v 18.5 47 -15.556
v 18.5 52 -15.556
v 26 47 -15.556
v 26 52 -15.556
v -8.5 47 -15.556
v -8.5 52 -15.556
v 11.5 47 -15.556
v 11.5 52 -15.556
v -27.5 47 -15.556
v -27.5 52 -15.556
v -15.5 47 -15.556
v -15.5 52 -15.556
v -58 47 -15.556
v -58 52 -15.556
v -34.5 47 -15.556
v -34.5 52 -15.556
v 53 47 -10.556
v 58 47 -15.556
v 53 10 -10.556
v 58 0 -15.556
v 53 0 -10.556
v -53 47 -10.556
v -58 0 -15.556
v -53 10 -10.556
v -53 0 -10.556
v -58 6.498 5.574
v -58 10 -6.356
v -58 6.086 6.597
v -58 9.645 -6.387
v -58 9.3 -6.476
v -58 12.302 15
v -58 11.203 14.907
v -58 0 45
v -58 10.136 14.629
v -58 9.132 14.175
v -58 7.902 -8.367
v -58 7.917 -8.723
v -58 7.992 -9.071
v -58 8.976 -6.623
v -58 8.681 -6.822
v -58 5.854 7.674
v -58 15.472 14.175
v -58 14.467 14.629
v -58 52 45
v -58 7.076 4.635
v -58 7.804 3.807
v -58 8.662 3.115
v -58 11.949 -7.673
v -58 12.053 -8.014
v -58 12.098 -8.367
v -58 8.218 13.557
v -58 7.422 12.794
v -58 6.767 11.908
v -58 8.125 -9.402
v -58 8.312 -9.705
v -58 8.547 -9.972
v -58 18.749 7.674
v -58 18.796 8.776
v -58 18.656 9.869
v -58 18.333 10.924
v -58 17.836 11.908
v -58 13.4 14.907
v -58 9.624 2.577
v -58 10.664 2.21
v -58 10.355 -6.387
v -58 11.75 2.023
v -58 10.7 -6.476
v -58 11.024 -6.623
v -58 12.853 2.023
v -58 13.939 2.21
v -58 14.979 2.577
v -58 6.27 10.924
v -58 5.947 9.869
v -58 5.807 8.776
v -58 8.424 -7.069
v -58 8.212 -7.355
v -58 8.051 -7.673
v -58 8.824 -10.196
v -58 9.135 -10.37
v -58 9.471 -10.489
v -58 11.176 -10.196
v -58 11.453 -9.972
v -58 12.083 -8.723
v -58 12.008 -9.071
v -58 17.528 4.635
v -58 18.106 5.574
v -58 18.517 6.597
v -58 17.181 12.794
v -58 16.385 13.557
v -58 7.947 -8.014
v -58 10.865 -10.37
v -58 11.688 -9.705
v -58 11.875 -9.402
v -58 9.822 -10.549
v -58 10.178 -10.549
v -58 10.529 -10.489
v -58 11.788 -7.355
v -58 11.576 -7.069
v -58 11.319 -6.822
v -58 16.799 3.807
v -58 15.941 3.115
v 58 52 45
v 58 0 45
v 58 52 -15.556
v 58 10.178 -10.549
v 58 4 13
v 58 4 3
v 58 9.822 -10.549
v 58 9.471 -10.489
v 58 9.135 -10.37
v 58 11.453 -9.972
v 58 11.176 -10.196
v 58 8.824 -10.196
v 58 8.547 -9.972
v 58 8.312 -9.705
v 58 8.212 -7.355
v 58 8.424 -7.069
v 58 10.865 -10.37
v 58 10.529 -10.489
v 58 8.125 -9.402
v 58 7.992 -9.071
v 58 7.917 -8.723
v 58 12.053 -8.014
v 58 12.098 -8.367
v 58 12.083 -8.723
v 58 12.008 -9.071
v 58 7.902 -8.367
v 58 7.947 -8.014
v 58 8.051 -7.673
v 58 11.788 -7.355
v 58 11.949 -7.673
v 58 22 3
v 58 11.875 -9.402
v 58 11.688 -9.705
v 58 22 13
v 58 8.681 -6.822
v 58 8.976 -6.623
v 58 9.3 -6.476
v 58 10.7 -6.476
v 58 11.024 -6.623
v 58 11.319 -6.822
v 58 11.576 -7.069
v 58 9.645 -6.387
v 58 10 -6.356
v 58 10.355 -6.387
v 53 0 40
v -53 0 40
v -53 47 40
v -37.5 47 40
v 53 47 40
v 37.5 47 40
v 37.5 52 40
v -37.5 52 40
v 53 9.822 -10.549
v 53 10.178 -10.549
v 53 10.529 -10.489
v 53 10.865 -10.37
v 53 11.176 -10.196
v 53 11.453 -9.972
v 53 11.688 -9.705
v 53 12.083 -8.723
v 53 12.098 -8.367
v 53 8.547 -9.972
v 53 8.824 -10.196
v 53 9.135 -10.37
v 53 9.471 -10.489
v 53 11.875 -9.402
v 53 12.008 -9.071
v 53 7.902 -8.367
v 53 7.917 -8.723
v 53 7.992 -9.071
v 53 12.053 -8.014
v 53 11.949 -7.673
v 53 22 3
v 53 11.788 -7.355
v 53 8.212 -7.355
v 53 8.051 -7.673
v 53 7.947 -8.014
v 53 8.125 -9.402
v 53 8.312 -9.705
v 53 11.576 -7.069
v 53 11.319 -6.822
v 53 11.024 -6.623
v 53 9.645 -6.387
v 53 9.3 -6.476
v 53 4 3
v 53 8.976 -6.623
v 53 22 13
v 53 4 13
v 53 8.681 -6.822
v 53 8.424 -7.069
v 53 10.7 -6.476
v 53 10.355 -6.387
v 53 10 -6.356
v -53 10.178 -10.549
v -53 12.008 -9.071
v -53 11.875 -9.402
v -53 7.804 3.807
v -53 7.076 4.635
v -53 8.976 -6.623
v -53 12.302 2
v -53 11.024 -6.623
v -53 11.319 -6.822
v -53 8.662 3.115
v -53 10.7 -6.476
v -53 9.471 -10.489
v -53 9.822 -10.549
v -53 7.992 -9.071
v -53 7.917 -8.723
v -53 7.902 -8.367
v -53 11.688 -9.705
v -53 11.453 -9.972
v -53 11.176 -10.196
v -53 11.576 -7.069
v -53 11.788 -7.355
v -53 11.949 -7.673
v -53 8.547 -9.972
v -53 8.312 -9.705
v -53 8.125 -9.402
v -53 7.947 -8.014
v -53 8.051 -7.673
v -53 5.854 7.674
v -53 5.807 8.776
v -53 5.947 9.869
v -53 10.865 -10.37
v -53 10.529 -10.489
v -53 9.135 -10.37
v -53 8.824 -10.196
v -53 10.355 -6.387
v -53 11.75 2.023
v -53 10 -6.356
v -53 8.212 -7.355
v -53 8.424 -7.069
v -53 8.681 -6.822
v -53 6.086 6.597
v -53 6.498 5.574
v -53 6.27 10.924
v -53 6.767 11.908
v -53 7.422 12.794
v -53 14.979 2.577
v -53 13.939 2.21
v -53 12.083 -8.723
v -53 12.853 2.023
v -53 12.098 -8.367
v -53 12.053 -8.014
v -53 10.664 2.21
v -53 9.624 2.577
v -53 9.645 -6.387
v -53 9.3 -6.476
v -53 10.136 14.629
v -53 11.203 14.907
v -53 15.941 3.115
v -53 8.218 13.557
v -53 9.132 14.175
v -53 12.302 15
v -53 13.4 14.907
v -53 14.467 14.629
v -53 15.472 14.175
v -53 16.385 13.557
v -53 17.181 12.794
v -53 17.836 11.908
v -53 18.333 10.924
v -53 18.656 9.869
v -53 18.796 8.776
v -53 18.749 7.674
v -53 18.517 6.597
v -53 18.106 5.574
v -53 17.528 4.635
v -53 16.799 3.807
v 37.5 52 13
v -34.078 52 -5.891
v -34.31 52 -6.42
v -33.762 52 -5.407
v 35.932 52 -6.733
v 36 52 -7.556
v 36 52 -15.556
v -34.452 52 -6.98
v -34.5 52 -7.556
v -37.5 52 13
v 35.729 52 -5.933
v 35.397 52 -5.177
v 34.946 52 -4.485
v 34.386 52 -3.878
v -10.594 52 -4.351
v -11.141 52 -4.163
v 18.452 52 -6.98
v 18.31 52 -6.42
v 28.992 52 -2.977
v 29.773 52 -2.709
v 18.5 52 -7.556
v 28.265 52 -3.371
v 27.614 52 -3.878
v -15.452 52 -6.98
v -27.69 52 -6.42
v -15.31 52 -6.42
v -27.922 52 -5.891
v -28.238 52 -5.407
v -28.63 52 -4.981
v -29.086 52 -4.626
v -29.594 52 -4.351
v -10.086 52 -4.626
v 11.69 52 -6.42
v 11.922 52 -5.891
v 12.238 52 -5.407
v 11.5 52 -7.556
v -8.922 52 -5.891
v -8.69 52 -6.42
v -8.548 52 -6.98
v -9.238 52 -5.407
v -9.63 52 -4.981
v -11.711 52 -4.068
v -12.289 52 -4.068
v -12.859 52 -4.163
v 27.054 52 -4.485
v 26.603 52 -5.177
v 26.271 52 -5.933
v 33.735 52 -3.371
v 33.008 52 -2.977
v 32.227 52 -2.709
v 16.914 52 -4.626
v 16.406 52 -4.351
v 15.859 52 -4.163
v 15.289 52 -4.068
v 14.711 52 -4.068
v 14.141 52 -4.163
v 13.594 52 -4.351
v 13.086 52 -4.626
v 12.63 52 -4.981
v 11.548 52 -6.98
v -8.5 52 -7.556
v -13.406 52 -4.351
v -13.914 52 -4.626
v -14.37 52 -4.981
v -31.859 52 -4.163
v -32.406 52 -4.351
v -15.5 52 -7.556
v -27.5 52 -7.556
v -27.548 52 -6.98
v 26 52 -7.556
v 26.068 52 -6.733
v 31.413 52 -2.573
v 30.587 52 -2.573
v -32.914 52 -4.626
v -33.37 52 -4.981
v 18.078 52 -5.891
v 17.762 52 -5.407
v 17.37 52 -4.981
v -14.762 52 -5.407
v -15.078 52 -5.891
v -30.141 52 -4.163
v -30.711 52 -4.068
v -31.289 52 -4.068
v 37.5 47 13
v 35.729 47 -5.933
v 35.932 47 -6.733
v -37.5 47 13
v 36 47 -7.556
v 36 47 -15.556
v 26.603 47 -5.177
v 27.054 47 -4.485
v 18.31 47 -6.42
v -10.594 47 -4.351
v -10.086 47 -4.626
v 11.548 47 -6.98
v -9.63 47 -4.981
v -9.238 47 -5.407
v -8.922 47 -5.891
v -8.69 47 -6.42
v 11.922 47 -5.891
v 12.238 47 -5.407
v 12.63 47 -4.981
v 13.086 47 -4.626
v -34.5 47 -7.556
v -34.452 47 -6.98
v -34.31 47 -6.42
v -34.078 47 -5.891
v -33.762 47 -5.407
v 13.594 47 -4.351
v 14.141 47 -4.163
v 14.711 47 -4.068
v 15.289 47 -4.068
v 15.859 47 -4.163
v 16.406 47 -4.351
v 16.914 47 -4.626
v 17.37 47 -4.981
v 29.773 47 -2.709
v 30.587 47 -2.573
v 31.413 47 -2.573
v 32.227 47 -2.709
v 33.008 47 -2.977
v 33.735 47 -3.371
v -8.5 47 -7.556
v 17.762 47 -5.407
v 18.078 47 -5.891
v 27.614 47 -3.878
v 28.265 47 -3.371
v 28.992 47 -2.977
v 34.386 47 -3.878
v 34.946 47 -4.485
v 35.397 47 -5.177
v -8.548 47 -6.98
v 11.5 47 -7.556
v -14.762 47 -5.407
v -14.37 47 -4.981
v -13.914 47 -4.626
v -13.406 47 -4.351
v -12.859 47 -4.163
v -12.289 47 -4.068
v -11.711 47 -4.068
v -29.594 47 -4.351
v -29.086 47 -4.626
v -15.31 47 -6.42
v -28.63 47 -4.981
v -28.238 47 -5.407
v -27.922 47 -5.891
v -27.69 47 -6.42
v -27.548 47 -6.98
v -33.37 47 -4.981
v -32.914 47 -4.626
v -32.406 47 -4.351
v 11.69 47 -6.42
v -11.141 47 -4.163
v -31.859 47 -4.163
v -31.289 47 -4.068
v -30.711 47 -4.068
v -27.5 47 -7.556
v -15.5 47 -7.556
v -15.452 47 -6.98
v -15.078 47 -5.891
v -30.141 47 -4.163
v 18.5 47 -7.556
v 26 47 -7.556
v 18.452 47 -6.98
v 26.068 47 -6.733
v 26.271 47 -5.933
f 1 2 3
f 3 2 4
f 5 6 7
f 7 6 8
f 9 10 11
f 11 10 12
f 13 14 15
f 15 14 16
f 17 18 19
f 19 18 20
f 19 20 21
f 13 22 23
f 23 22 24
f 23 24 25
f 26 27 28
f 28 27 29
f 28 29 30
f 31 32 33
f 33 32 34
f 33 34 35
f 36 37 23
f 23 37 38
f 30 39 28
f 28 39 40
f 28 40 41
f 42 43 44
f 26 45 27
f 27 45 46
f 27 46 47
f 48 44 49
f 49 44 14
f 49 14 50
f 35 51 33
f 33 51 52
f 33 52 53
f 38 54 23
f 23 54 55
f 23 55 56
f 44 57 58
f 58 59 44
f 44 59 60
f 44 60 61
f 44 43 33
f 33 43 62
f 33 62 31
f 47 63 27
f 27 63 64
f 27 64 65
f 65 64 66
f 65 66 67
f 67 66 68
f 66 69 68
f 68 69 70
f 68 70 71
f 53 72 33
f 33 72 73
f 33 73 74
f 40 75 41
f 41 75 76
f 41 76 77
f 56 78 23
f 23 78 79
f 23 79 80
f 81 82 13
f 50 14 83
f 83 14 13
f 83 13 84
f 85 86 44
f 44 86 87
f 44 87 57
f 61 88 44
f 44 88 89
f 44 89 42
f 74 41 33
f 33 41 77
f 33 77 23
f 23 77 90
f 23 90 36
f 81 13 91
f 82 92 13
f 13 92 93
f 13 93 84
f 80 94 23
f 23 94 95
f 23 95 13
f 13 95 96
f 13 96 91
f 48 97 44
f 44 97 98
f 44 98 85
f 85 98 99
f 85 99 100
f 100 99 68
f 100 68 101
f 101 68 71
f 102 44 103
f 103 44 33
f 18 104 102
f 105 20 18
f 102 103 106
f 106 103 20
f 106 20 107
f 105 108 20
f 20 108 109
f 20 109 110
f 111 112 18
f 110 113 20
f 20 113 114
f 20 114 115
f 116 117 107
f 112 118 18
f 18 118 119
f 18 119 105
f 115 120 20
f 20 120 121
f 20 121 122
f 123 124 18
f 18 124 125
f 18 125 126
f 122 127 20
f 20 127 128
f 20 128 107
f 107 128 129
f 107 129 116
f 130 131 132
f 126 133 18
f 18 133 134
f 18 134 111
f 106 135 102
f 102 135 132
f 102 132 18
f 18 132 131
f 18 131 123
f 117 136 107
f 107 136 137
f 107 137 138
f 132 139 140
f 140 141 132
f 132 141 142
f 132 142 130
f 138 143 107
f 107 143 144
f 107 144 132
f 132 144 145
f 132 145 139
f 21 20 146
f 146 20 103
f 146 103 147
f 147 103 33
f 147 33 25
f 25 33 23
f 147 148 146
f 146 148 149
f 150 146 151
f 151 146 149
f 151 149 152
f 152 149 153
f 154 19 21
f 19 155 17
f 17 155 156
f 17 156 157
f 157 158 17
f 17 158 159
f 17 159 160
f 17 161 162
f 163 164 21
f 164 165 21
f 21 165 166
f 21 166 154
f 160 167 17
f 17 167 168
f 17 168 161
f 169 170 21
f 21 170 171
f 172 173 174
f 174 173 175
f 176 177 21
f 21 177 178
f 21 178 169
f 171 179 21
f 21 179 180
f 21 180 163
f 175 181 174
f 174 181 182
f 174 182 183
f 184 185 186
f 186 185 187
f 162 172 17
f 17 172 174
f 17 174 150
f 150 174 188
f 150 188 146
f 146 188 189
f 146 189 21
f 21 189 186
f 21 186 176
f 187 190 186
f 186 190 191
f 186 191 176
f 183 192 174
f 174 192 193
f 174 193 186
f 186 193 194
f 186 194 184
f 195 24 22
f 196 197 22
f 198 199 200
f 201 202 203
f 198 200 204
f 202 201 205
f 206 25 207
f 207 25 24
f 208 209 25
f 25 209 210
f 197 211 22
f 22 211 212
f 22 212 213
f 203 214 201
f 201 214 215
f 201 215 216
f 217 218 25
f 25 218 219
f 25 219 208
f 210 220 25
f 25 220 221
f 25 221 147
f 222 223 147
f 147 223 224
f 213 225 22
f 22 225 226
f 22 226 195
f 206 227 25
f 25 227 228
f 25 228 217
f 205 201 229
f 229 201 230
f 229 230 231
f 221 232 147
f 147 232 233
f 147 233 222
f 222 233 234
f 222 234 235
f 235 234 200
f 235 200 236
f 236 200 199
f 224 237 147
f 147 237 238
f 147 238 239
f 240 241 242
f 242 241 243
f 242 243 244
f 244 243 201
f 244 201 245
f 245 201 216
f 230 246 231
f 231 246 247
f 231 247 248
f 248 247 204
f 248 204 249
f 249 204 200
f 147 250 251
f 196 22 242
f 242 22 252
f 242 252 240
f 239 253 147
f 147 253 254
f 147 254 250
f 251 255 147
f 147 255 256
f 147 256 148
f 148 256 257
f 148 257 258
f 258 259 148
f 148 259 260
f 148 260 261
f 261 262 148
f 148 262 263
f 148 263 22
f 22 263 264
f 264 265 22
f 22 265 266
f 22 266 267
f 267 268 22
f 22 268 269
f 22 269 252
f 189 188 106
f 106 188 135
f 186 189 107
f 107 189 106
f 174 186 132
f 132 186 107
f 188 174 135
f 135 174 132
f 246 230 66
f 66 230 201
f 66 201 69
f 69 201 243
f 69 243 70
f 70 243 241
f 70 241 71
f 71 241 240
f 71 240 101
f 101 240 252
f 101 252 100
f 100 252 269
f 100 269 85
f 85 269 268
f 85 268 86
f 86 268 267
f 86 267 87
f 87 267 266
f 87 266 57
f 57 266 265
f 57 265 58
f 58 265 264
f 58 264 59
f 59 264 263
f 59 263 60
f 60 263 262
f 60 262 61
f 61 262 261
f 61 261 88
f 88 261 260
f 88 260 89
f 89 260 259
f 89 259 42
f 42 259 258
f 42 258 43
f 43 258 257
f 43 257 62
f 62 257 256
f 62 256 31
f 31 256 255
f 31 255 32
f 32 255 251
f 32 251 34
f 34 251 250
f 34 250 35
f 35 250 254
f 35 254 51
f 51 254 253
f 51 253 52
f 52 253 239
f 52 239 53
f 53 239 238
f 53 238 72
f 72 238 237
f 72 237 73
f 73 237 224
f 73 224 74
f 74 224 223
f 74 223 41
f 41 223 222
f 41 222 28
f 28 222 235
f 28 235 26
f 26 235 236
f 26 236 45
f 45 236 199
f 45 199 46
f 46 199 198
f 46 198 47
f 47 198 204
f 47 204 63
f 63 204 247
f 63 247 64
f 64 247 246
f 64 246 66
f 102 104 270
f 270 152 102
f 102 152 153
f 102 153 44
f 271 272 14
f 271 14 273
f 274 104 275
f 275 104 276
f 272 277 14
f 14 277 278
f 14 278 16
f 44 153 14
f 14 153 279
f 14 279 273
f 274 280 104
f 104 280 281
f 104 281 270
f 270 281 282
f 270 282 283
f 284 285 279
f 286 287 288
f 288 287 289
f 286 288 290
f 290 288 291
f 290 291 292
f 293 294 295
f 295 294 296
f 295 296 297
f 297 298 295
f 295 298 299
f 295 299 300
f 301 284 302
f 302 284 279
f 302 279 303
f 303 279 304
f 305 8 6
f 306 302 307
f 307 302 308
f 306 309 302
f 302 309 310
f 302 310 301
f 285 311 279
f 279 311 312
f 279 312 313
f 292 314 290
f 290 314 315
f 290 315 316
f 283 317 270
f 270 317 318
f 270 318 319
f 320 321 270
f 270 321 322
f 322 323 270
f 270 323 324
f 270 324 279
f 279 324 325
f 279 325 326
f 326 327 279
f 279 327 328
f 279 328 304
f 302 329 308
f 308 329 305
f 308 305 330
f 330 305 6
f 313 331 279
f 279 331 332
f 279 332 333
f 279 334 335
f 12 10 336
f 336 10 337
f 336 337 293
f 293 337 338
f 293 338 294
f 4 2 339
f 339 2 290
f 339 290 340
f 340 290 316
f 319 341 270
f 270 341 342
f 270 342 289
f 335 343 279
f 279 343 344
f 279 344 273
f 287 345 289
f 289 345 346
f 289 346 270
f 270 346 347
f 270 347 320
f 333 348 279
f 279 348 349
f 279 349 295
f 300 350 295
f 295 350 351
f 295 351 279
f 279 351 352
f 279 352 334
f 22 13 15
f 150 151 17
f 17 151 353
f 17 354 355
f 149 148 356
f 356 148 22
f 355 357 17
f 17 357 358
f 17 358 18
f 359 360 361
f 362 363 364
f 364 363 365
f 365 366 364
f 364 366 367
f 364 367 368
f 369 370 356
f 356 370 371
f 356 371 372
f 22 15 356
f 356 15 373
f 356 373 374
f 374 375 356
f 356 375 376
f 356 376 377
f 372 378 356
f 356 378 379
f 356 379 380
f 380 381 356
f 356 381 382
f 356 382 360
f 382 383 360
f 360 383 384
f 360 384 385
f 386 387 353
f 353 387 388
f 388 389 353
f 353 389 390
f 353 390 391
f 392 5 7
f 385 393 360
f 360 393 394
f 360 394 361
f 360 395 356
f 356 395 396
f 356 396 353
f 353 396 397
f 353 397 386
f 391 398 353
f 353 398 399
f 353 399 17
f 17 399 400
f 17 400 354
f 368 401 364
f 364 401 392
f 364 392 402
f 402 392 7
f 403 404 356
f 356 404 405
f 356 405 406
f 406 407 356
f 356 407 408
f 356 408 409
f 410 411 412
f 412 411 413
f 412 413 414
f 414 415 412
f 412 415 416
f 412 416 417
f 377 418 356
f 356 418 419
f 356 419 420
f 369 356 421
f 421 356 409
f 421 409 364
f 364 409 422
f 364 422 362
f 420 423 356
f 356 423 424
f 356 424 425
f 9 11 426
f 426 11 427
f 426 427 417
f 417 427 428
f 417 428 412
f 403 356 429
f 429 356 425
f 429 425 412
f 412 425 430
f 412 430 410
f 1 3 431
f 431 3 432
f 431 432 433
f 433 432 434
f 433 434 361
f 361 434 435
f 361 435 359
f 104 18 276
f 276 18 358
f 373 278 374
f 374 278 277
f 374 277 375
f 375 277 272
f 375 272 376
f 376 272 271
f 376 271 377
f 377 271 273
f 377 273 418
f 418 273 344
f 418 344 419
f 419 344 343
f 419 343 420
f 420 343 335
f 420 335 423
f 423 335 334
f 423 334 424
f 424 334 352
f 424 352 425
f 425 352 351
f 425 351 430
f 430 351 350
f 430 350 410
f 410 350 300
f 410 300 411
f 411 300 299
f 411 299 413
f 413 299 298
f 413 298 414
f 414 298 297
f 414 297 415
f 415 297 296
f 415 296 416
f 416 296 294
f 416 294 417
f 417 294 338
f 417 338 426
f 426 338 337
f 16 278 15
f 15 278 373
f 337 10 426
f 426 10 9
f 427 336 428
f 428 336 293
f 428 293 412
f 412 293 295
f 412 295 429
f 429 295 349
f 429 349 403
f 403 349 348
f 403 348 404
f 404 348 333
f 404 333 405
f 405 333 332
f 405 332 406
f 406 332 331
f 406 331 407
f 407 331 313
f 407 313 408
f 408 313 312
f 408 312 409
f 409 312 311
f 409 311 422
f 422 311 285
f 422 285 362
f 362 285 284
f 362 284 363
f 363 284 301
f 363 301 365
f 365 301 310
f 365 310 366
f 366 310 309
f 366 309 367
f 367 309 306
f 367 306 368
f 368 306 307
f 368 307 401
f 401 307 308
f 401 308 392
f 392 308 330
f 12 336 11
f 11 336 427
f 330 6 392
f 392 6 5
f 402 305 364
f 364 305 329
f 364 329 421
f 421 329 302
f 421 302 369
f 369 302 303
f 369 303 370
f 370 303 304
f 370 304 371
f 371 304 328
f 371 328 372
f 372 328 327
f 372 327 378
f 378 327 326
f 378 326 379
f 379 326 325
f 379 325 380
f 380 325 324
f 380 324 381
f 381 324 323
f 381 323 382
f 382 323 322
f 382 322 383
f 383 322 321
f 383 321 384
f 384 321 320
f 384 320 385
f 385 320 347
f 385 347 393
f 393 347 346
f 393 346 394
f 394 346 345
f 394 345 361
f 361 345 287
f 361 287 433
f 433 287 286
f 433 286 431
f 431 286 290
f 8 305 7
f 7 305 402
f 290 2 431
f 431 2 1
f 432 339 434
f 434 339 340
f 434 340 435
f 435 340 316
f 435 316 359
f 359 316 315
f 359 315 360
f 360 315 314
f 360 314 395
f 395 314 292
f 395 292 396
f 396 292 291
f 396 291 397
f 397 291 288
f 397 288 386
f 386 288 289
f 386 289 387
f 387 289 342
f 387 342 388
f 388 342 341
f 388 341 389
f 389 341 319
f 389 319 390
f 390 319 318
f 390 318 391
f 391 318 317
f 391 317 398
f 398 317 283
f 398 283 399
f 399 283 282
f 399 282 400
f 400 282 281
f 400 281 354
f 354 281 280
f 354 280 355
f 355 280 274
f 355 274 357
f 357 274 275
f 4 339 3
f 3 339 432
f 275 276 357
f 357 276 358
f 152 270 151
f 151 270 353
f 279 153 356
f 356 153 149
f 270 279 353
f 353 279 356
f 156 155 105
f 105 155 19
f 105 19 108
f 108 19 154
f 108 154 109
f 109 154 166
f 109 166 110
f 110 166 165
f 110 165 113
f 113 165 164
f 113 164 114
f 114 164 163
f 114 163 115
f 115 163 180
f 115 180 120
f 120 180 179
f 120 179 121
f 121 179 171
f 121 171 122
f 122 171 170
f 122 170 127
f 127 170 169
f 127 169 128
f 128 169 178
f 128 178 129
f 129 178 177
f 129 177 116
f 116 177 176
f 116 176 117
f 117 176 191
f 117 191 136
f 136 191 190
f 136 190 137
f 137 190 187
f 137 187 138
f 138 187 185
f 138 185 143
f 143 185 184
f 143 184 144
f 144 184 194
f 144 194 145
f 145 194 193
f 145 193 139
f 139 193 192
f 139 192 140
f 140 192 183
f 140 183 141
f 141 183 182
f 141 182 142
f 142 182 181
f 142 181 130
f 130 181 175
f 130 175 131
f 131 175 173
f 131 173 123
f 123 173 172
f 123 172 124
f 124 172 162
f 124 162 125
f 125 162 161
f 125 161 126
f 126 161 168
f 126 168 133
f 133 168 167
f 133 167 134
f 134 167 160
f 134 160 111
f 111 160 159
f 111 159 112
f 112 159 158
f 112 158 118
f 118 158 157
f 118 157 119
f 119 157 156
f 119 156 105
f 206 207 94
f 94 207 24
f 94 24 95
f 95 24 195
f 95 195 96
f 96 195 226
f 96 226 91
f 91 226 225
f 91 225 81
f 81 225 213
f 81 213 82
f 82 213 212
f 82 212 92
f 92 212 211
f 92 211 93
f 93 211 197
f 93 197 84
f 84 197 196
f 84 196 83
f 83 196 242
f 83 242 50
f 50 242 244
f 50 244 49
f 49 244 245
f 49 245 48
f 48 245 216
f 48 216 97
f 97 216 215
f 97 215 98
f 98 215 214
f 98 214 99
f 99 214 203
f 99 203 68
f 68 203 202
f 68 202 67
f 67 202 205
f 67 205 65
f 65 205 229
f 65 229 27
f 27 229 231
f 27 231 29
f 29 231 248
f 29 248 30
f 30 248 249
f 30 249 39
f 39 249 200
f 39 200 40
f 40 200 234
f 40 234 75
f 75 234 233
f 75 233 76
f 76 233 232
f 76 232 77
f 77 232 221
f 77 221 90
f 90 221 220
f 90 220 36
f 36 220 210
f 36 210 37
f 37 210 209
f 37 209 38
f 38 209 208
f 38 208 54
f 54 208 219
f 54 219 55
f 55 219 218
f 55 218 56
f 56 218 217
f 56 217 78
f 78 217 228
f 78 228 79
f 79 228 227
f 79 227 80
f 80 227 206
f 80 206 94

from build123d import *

# Parameters (mm, degrees)
BOSS_EXTRUDE1_DEPTH             = 47
SKETCH3_W                       = 84.887301628
SKETCH3_H                       = 42
CUT_EXTRUDE1_DEPTH              = 40
SKETCH4_W                       = 55.556349186
SKETCH4_H                       = 42
CUT_EXTRUDE2_DEPTH              = 10.556349186
SKETCH5_W                       = 55.556349186
SKETCH5_H                       = 42
CUT_EXTRUDE3_DEPTH              = 10.556349186
CUT_EXTRUDE5_REACH              = 130.666
SKETCH7_W                       = 10
SKETCH7_H                       = 18
CUT_EXTRUDE6_REACH              = 135.004
SKETCH8_R                       = 6.5
BOSS_EXTRUDE2_DEPTH             = 5
CUT_EXTRUDE7_REACH              = 105.666
CUT_EXTRUDE7_START              = -5
SKETCH11_W                      = 106
SKETCH11_H                      = 47
BOSS_EXTRUDE3_DEPTH             = 5
CUT_EXTRUDE8_REACH              = 91.961
CUT_EXTRUDE9_REACH              = 91.961
SKETCH14_W                      = 75
SKETCH14_H                      = 27
CUT_EXTRUDE10_REACH             = 136.852
SKETCH16_R                      = 2.1
CUT_EXTRUDE10_DIRECTION_2_DEPTH = 135.851770474
CUT_EXTRUDE11_REACH             = 136.852
SKETCH17_R                      = 2.1


with BuildPart() as part:
    # Sketch1 → Boss-Extrude1 (new body)
    with BuildSketch(Plane(origin=(0, 0, 0), x_dir=(1, 0, 0), z_dir=(0, 1, 0))):
        Polygon((-42.443650814, 0), (42.443650814, 0), (58, 15.556349186), (58, -45), (-58, -45), (-58, 15.556349186), align=None)
    extrude(amount=BOSS_EXTRUDE1_DEPTH)

    # Sketch3 → Cut-Extrude1 (cut)
    with BuildSketch(Plane(origin=(0, 0, 0), x_dir=(-1, 0, 0), z_dir=(0, 0, -1))):
        with Locations((0, 21)):
            Rectangle(SKETCH3_W, SKETCH3_H)
    extrude(amount=-CUT_EXTRUDE1_DEPTH, mode=Mode.SUBTRACT)

    # Sketch4 → Cut-Extrude2 (cut)
    with BuildSketch(Plane.ZY.offset(-42.443650814)):
        with Locations((12.221825407, 21)):
            Rectangle(SKETCH4_W, SKETCH4_H)
    extrude(amount=-CUT_EXTRUDE2_DEPTH, mode=Mode.SUBTRACT)

    # Sketch5 → Cut-Extrude3 (cut)
    with BuildSketch(Plane(origin=(-42.443650814, 0, 0), x_dir=(0, 0, -1), z_dir=(1, 0, 0))):
        with Locations((-12.221825407, 21)):
            Rectangle(SKETCH5_W, SKETCH5_H)
    extrude(amount=-CUT_EXTRUDE3_DEPTH, mode=Mode.SUBTRACT)

    # Sketch7 → Cut-Extrude5 (cut, up to next)
    with BuildSketch(Plane.ZY.offset(-53), mode=Mode.PRIVATE) as cut_extrude5_sk1:
        with Locations((8, 13)):
            Rectangle(SKETCH7_W, SKETCH7_H)
    cut_extrude5_tool1 = extrude(cut_extrude5_sk1.sketch, amount=-CUT_EXTRUDE5_REACH, mode=Mode.PRIVATE) & part.part
    add(cut_extrude5_tool1.solids().sort_by_distance((53, 13, 8))[0], mode=Mode.SUBTRACT)

    # Sketch8 → Cut-Extrude6 (cut, up to next)
    with BuildSketch(Plane.ZY.offset(58), mode=Mode.PRIVATE) as cut_extrude6_sk1:
        with Locations((8.5, 12.301549083)):
            Circle(SKETCH8_R)
    cut_extrude6_tool1 = extrude(cut_extrude6_sk1.sketch, amount=-CUT_EXTRUDE6_REACH, mode=Mode.PRIVATE) & part.part
    add(cut_extrude6_tool1.solids().sort_by_distance((-58, 12.301549, 8.5))[0], mode=Mode.SUBTRACT)

    # Sketch10 → Boss-Extrude2 (add)
    with BuildSketch(Plane(origin=(0, 47, 0), x_dir=(1, 0, 0), z_dir=(0, 1, 0))):
        Polygon((58, -45), (-58, -45), (-58, 15.556349186), (-42.443650814, 0), (42.443650814, 0), (58, 15.556349186), align=None)
    extrude(amount=BOSS_EXTRUDE2_DEPTH)

    # Sketch11 → Cut-Extrude7 (cut, up to next)
    with BuildSketch(Plane.XY.offset(45).offset(CUT_EXTRUDE7_START), mode=Mode.PRIVATE) as cut_extrude7_sk1:
        with Locations((0, 23.5)):
            Rectangle(SKETCH11_W, SKETCH11_H)
    cut_extrude7_tool1 = extrude(cut_extrude7_sk1.sketch, amount=-CUT_EXTRUDE7_REACH, mode=Mode.PRIVATE) & part.part
    add(cut_extrude7_tool1.solids().sort_by_distance((0, 23.5, 40))[0], mode=Mode.SUBTRACT)

    # Sketch12 → Boss-Extrude3 (add)
    with BuildSketch(Plane(origin=(0, 52, 0), x_dir=(1, 0, 0), z_dir=(0, 1, 0))):
        Polygon((58, 15.556349186), (42.443650814, 0), (-42.443650814, 0), (-58, 15.556349186), align=None)
    extrude(amount=-BOSS_EXTRUDE3_DEPTH)

    # Sketch13 → Cut-Extrude8 (cut, up to next)
    with BuildSketch(Plane(origin=(0, 52, 0), x_dir=(1, 0, 0), z_dir=(0, 1, 0)), mode=Mode.PRIVATE) as cut_extrude8_sk1:
        with BuildLine():
            Line((26, 7.556349186), (26, 15.556349186))
            ThreePointArc((26, 15.556349186), (31, 20.556349186), (36, 15.556349186))
            Line((36, 15.556349186), (36, 7.556349186))
            ThreePointArc((36, 7.556349186), (31, 2.556349186), (26, 7.556349186))
        make_face()
    cut_extrude8_tool1 = extrude(cut_extrude8_sk1.sketch, amount=-CUT_EXTRUDE8_REACH, mode=Mode.PRIVATE) & part.part
    # Sketch13 → Cut-Extrude8 (cut, up to next)
    with BuildSketch(Plane(origin=(0, 52, 0), x_dir=(1, 0, 0), z_dir=(0, 1, 0)), mode=Mode.PRIVATE) as cut_extrude8_sk2:
        with BuildLine():
            Line((11.5, 7.556349186), (11.5, 15.556349186))
            ThreePointArc((11.5, 15.556349186), (15, 19.056349186), (18.5, 15.556349186))
            Line((18.5, 15.556349186), (18.5, 7.556349186))
            ThreePointArc((18.5, 7.556349186), (15, 4.056349186), (11.5, 7.556349186))
        make_face()
    cut_extrude8_tool2 = extrude(cut_extrude8_sk2.sketch, amount=-CUT_EXTRUDE8_REACH, mode=Mode.PRIVATE) & part.part
    # Sketch13 → Cut-Extrude8 (cut, up to next)
    with BuildSketch(Plane(origin=(0, 52, 0), x_dir=(1, 0, 0), z_dir=(0, 1, 0)), mode=Mode.PRIVATE) as cut_extrude8_sk3:
        with BuildLine():
            Line((-15.5, 7.556349186), (-15.5, 15.556349186))
            ThreePointArc((-15.5, 15.556349186), (-12, 19.056349186), (-8.5, 15.556349186))
            Line((-8.5, 15.556349186), (-8.5, 7.556349186))
            ThreePointArc((-8.5, 7.556349186), (-12, 4.056349186), (-15.5, 7.556349186))
        make_face()
    cut_extrude8_tool3 = extrude(cut_extrude8_sk3.sketch, amount=-CUT_EXTRUDE8_REACH, mode=Mode.PRIVATE) & part.part
    # Sketch13 → Cut-Extrude8 (cut, up to next)
    with BuildSketch(Plane(origin=(0, 52, 0), x_dir=(1, 0, 0), z_dir=(0, 1, 0)), mode=Mode.PRIVATE) as cut_extrude8_sk4:
        with BuildLine():
            Line((-34.5, 7.556349186), (-34.5, 15.556349186))
            ThreePointArc((-34.5, 15.556349186), (-31, 19.056349186), (-27.5, 15.556349186))
            Line((-27.5, 15.556349186), (-27.5, 7.556349186))
            ThreePointArc((-27.5, 7.556349186), (-31, 4.056349186), (-34.5, 7.556349186))
        make_face()
    cut_extrude8_tool4 = extrude(cut_extrude8_sk4.sketch, amount=-CUT_EXTRUDE8_REACH, mode=Mode.PRIVATE) & part.part
    add(cut_extrude8_tool1.solids().sort_by_distance((31, 52, -11.556349))[0], mode=Mode.SUBTRACT)
    add(cut_extrude8_tool2.solids().sort_by_distance((15, 52, -11.556349))[0], mode=Mode.SUBTRACT)
    add(cut_extrude8_tool3.solids().sort_by_distance((-12, 52, -11.556349))[0], mode=Mode.SUBTRACT)
    add(cut_extrude8_tool4.solids().sort_by_distance((-31, 52, -11.556349))[0], mode=Mode.SUBTRACT)

    # Sketch14 → Cut-Extrude9 (cut, up to next)
    with BuildSketch(Plane(origin=(0, 52, 0), x_dir=(1, 0, 0), z_dir=(0, 1, 0)), mode=Mode.PRIVATE) as cut_extrude9_sk1:
        with Locations((0, -26.5)):
            Rectangle(SKETCH14_W, SKETCH14_H)
    cut_extrude9_tool1 = extrude(cut_extrude9_sk1.sketch, amount=-CUT_EXTRUDE9_REACH, mode=Mode.PRIVATE) & part.part
    add(cut_extrude9_tool1.solids().sort_by_distance((0, 52, 26.5))[0], mode=Mode.SUBTRACT)

    # Sketch16 → Cut-Extrude10 (cut, up to next)
    with BuildSketch(Plane(origin=(58, 0, 0), x_dir=(0, 0, -1), z_dir=(1, 0, 0)), mode=Mode.PRIVATE) as cut_extrude10_sk1:
        with Locations(Location((8.456349186, 10, 0), (0, 0, 180))):
            Circle(SKETCH16_R)
    cut_extrude10_tool1 = extrude(cut_extrude10_sk1.sketch, amount=-CUT_EXTRUDE10_REACH, mode=Mode.PRIVATE) & part.part
    add(cut_extrude10_tool1.solids().sort_by_distance((58, 10, -8.456349))[0], mode=Mode.SUBTRACT)

    # Sketch16 → Cut-Extrude10 direction 2 (cut)
    with BuildSketch(Plane(origin=(58, 0, 0), x_dir=(0, 0, -1), z_dir=(1, 0, 0))):
        with Locations(Location((8.456349186, 10, 0), (0, 0, 180))):
            Circle(SKETCH16_R)
    extrude(amount=CUT_EXTRUDE10_DIRECTION_2_DEPTH, mode=Mode.SUBTRACT)

    # Sketch17 → Cut-Extrude11 (cut, up to next)
    with BuildSketch(Plane.ZY.offset(58), mode=Mode.PRIVATE) as cut_extrude11_sk1:
        with Locations((-8.456349186, 10)):
            Circle(SKETCH17_R)
    cut_extrude11_tool1 = extrude(cut_extrude11_sk1.sketch, amount=-CUT_EXTRUDE11_REACH, mode=Mode.PRIVATE) & part.part
    add(cut_extrude11_tool1.solids().sort_by_distance((-58, 10, -8.456349))[0], mode=Mode.SUBTRACT)


solid = part.part
